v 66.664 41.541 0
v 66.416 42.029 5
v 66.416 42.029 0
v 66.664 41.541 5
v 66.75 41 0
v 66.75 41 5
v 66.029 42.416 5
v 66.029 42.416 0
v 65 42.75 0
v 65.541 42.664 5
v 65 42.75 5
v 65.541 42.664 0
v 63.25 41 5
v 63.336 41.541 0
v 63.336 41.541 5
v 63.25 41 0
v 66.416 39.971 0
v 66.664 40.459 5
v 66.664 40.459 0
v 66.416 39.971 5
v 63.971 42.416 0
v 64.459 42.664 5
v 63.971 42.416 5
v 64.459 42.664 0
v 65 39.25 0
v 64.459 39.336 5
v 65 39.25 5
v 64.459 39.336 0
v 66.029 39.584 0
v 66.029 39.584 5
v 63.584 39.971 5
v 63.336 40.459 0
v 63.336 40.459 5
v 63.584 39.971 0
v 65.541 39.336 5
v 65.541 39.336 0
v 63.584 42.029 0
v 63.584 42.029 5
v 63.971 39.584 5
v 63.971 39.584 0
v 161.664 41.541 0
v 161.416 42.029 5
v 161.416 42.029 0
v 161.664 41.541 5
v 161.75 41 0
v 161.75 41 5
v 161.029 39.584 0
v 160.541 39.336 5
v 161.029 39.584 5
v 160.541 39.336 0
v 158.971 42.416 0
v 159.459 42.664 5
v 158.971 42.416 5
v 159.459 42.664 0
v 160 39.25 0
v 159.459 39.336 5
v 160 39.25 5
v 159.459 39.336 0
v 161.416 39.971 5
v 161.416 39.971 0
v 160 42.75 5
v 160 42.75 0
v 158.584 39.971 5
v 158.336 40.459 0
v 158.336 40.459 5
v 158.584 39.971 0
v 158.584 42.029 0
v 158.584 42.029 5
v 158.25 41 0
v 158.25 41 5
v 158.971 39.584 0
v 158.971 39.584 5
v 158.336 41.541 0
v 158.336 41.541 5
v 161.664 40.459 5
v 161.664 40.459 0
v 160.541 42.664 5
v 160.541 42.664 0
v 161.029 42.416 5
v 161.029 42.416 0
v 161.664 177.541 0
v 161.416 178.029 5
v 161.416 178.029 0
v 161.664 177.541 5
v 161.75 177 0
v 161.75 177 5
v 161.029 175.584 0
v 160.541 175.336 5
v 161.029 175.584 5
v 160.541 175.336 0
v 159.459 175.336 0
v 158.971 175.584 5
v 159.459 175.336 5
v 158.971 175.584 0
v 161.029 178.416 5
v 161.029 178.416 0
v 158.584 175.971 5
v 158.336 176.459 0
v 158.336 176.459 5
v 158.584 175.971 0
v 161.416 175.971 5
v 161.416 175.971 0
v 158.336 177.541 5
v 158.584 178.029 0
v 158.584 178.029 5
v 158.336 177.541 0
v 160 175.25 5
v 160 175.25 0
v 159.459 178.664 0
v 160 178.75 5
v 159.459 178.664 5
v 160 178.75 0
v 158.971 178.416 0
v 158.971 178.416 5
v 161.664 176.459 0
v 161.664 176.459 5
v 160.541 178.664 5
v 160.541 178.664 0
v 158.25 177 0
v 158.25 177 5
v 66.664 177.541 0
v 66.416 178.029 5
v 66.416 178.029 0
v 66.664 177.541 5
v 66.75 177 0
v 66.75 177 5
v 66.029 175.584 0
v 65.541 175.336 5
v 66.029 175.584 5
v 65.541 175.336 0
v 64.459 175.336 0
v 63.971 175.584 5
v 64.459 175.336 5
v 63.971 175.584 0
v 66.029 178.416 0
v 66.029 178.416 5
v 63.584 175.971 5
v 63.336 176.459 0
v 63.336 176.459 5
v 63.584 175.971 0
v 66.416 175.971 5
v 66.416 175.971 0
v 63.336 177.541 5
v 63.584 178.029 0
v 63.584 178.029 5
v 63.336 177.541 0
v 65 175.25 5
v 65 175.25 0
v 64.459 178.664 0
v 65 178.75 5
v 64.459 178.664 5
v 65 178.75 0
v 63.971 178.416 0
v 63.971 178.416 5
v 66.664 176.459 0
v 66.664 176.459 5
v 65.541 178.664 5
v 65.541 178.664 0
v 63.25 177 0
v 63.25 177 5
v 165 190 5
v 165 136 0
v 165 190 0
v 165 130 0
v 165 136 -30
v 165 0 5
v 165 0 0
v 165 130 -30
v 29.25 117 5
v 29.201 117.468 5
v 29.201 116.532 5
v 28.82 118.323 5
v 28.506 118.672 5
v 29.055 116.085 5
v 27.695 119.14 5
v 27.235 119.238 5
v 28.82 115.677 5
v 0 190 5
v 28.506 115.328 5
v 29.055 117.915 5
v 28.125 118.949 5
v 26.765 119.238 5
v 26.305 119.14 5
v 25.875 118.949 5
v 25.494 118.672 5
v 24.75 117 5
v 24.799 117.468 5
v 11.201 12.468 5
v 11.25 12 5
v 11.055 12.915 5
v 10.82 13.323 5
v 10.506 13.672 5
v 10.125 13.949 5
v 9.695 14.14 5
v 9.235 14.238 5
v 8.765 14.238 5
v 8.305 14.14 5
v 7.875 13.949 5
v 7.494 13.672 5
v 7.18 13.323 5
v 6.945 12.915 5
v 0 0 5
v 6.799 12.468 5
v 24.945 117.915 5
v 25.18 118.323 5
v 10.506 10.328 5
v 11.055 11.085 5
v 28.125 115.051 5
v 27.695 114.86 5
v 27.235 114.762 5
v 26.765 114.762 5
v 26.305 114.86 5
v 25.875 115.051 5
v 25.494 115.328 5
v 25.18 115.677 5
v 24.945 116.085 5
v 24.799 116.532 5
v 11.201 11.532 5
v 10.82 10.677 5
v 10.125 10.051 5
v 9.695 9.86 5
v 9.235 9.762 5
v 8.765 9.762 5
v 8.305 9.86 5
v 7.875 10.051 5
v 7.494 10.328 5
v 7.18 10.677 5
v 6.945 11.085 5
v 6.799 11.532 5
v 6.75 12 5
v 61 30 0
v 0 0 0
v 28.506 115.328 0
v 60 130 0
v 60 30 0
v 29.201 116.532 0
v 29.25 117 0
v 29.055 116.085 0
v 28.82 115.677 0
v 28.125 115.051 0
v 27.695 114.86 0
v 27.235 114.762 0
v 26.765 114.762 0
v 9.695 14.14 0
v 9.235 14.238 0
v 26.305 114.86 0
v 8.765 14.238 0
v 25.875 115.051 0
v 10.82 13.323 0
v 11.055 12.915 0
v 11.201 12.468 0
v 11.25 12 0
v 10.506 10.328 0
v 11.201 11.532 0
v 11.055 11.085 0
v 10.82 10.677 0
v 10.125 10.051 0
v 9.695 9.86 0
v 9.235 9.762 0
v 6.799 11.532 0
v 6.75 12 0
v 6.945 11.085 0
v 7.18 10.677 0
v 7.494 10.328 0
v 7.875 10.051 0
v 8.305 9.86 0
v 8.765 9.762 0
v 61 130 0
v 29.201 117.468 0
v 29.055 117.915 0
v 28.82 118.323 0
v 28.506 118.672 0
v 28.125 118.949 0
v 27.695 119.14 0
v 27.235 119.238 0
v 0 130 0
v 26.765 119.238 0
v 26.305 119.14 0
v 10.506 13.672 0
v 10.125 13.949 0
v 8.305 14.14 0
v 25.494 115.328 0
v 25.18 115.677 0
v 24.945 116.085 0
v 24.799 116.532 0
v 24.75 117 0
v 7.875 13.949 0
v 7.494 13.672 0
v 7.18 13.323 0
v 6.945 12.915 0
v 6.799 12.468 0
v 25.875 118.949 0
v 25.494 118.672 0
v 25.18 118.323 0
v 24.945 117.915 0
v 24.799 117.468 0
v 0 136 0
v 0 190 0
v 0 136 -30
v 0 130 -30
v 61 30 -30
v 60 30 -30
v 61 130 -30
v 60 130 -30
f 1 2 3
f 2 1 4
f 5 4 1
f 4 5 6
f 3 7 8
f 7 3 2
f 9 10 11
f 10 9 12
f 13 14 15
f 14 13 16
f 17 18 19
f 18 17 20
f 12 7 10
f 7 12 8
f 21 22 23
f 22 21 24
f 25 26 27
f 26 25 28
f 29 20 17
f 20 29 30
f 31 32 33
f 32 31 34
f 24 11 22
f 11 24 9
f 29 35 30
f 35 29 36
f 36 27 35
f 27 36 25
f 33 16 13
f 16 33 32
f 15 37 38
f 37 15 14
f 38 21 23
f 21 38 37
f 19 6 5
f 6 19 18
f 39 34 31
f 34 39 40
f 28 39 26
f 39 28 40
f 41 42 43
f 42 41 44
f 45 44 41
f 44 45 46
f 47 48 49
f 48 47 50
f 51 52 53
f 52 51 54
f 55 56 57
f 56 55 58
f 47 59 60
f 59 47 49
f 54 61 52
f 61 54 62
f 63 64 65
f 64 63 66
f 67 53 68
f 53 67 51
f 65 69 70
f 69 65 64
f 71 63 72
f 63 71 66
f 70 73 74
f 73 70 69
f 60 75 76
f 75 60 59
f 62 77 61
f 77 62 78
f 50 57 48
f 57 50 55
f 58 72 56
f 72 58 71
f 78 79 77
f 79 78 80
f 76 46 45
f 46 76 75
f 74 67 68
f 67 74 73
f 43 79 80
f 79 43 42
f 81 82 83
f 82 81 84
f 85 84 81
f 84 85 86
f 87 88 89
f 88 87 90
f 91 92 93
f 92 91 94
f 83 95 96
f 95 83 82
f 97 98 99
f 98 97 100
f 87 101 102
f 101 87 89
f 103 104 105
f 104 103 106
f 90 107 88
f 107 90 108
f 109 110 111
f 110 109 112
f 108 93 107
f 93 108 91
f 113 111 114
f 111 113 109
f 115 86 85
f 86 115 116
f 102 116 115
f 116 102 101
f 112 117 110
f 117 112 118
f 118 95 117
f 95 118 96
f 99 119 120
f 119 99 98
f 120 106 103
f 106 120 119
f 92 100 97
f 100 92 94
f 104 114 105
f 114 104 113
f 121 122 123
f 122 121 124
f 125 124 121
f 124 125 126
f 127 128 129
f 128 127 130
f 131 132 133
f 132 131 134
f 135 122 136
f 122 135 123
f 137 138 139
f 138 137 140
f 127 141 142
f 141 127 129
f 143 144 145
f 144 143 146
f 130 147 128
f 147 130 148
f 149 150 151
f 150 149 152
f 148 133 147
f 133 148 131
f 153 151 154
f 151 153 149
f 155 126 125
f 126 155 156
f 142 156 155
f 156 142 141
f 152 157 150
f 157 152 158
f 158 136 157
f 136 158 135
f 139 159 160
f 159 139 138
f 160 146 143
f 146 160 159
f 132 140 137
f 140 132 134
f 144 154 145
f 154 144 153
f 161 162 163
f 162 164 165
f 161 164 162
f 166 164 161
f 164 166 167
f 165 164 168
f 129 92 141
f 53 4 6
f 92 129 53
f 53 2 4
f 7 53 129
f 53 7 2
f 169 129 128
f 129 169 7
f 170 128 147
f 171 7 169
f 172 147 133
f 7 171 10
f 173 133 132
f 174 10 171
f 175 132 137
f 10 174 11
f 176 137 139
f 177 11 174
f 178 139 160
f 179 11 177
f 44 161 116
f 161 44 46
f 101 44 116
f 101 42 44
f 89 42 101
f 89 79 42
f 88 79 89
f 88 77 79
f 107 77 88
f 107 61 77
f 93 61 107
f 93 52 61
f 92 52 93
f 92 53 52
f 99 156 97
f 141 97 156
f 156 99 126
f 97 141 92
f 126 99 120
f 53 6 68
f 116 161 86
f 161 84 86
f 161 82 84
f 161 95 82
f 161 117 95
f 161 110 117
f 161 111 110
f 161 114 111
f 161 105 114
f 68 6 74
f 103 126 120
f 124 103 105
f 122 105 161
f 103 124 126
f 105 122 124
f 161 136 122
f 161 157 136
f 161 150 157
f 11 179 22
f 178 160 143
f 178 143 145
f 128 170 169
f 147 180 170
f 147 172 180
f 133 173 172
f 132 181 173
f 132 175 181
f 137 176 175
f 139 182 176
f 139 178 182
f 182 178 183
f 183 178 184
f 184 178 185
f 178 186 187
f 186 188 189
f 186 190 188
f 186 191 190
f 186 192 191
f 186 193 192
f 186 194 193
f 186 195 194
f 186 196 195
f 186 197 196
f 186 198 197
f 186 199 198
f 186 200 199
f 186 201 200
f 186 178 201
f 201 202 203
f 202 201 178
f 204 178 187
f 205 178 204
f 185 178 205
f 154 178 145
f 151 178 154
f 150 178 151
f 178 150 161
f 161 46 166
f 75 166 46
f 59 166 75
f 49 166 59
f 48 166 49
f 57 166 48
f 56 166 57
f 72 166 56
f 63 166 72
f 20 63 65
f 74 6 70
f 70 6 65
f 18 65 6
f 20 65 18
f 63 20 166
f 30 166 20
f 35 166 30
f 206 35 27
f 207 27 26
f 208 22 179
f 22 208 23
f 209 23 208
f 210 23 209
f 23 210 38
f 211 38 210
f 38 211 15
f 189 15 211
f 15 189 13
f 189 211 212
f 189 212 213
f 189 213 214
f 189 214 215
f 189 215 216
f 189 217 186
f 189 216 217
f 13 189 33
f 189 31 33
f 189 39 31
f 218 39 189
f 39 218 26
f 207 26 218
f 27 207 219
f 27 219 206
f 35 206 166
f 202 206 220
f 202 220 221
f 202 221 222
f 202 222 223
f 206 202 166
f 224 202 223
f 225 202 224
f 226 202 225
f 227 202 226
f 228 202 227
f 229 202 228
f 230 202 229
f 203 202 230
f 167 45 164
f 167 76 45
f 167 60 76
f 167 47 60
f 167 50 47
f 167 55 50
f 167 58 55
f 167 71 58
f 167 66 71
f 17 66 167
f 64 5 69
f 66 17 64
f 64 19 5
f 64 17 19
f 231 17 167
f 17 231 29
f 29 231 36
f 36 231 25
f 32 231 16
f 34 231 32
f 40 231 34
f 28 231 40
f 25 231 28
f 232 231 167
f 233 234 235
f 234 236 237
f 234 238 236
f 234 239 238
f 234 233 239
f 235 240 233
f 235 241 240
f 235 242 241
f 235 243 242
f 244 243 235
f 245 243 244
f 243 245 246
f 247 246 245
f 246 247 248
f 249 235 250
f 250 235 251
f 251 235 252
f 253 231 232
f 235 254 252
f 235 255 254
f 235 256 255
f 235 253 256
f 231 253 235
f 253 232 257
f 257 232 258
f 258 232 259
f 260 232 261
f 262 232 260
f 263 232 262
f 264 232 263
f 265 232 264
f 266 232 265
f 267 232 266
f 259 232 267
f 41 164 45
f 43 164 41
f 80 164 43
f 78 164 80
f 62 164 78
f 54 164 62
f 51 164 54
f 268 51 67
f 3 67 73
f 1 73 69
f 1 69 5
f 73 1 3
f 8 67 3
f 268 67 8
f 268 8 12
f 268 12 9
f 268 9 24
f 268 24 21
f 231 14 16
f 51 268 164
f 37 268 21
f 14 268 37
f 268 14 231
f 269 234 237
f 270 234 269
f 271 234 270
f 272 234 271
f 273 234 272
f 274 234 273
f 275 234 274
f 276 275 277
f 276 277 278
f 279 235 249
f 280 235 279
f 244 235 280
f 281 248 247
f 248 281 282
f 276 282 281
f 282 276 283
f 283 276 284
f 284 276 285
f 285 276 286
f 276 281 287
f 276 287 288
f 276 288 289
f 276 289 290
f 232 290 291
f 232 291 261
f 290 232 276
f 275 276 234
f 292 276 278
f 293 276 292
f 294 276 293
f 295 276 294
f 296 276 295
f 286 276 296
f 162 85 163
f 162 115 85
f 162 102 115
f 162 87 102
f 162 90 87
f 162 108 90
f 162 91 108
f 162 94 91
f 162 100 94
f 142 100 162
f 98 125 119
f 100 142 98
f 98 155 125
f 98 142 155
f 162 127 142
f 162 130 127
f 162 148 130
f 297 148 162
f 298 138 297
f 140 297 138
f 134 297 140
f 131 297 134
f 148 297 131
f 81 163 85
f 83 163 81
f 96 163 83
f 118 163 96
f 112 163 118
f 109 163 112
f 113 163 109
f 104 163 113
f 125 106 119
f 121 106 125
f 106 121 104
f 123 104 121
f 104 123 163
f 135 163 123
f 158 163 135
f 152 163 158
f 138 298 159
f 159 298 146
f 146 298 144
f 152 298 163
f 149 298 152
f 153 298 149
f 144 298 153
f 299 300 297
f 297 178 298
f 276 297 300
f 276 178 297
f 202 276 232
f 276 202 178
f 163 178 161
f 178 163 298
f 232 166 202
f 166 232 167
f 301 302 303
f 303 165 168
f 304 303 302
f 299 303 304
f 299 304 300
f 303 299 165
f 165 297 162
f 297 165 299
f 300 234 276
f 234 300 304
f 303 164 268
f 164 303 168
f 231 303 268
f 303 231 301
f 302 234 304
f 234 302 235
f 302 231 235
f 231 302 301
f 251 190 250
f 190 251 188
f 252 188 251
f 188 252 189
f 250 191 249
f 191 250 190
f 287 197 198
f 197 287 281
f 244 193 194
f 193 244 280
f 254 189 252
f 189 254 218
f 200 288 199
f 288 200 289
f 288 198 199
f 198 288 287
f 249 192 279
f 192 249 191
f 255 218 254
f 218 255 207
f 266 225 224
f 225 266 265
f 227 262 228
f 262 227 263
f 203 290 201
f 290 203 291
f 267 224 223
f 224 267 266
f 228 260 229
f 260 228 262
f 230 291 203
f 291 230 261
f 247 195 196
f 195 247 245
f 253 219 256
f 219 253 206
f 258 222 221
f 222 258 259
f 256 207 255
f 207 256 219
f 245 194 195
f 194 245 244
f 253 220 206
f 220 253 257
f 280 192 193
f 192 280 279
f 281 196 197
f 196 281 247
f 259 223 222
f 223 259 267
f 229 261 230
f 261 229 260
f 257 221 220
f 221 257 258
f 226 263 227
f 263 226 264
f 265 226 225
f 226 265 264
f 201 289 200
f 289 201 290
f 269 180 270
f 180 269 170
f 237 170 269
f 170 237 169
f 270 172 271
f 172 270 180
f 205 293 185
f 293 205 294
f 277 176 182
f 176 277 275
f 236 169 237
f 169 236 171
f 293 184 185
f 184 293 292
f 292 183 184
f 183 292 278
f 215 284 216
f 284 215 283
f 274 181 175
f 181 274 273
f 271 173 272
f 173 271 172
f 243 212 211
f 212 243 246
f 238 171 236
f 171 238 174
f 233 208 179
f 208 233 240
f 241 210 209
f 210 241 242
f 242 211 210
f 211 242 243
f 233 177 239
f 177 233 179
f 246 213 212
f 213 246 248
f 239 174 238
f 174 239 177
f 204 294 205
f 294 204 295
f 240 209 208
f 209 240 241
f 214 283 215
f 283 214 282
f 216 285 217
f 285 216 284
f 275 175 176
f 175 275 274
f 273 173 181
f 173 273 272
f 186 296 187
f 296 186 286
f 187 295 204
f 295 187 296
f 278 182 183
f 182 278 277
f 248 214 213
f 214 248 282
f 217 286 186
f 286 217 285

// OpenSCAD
size_bp_x = 165;
size_bp_y = 190;
size_bp_z = 5;

ridge_bottom=60;
ridge_size_y=6;
ridge_size_z=30;


battery_spacing_x=size_bp_x - 105;
battery_spacing_size_x=1;
battery_spacing_size_y=100;

size_bms_x = 104;
size_bms_y = 162;
bms_screw_x=4;
bms_screw_y=13;
bms_distance_screw_x=95;
bms_distance_screw_y=136;
bms_screw_diameter=3.5;

fusebox_dist_y=105;
fusebox_dist_x=36-9*2;
fusebox_spacing_x = 9;
fusebox_spacing_y = 12;
fusebox_screw_diameter=4.5;

difference() {
    union() {
        cube([size_bp_x,size_bp_y,size_bp_z]);

        translate([0,size_bp_y-ridge_bottom,-ridge_size_z])
        cube([size_bp_x,ridge_size_y,ridge_size_z]);

        translate([battery_spacing_x,size_bp_y-ridge_bottom-battery_spacing_size_y,-ridge_size_z])
        cube([battery_spacing_size_x,battery_spacing_size_y,ridge_size_z]);

    }
    
    translate([fusebox_spacing_x,fusebox_spacing_y,-0.1]) {
        cylinder(h=size_bp_z+0.2,d=fusebox_screw_diameter,center=false,$fn=30);
        
        translate([fusebox_dist_x,fusebox_dist_y,0])
        cylinder(h=size_bp_z+0.2,d=fusebox_screw_diameter,center=false,$fn=30);
    }
    
    
    translate([size_bp_x-size_bms_x+bms_screw_x,size_bp_y -size_bms_y+bms_screw_y ,-0.1]) {
        
        cylinder(h=size_bp_z+0.2,d=bms_screw_diameter,center=false,$fn=20);
        
        translate([bms_distance_screw_x,0,0])
          cylinder(h=size_bp_z+0.2,d=bms_screw_diameter,center=false,$fn=20);
        translate([bms_distance_screw_x,bms_distance_screw_y,0])
          cylinder(h=size_bp_z+0.2,d=bms_screw_diameter,center=false,$fn=20);
        translate([0,bms_distance_screw_y,0])
          cylinder(h=size_bp_z+0.2,d=bms_screw_diameter,center=false,$fn=20);
            
    }
}
